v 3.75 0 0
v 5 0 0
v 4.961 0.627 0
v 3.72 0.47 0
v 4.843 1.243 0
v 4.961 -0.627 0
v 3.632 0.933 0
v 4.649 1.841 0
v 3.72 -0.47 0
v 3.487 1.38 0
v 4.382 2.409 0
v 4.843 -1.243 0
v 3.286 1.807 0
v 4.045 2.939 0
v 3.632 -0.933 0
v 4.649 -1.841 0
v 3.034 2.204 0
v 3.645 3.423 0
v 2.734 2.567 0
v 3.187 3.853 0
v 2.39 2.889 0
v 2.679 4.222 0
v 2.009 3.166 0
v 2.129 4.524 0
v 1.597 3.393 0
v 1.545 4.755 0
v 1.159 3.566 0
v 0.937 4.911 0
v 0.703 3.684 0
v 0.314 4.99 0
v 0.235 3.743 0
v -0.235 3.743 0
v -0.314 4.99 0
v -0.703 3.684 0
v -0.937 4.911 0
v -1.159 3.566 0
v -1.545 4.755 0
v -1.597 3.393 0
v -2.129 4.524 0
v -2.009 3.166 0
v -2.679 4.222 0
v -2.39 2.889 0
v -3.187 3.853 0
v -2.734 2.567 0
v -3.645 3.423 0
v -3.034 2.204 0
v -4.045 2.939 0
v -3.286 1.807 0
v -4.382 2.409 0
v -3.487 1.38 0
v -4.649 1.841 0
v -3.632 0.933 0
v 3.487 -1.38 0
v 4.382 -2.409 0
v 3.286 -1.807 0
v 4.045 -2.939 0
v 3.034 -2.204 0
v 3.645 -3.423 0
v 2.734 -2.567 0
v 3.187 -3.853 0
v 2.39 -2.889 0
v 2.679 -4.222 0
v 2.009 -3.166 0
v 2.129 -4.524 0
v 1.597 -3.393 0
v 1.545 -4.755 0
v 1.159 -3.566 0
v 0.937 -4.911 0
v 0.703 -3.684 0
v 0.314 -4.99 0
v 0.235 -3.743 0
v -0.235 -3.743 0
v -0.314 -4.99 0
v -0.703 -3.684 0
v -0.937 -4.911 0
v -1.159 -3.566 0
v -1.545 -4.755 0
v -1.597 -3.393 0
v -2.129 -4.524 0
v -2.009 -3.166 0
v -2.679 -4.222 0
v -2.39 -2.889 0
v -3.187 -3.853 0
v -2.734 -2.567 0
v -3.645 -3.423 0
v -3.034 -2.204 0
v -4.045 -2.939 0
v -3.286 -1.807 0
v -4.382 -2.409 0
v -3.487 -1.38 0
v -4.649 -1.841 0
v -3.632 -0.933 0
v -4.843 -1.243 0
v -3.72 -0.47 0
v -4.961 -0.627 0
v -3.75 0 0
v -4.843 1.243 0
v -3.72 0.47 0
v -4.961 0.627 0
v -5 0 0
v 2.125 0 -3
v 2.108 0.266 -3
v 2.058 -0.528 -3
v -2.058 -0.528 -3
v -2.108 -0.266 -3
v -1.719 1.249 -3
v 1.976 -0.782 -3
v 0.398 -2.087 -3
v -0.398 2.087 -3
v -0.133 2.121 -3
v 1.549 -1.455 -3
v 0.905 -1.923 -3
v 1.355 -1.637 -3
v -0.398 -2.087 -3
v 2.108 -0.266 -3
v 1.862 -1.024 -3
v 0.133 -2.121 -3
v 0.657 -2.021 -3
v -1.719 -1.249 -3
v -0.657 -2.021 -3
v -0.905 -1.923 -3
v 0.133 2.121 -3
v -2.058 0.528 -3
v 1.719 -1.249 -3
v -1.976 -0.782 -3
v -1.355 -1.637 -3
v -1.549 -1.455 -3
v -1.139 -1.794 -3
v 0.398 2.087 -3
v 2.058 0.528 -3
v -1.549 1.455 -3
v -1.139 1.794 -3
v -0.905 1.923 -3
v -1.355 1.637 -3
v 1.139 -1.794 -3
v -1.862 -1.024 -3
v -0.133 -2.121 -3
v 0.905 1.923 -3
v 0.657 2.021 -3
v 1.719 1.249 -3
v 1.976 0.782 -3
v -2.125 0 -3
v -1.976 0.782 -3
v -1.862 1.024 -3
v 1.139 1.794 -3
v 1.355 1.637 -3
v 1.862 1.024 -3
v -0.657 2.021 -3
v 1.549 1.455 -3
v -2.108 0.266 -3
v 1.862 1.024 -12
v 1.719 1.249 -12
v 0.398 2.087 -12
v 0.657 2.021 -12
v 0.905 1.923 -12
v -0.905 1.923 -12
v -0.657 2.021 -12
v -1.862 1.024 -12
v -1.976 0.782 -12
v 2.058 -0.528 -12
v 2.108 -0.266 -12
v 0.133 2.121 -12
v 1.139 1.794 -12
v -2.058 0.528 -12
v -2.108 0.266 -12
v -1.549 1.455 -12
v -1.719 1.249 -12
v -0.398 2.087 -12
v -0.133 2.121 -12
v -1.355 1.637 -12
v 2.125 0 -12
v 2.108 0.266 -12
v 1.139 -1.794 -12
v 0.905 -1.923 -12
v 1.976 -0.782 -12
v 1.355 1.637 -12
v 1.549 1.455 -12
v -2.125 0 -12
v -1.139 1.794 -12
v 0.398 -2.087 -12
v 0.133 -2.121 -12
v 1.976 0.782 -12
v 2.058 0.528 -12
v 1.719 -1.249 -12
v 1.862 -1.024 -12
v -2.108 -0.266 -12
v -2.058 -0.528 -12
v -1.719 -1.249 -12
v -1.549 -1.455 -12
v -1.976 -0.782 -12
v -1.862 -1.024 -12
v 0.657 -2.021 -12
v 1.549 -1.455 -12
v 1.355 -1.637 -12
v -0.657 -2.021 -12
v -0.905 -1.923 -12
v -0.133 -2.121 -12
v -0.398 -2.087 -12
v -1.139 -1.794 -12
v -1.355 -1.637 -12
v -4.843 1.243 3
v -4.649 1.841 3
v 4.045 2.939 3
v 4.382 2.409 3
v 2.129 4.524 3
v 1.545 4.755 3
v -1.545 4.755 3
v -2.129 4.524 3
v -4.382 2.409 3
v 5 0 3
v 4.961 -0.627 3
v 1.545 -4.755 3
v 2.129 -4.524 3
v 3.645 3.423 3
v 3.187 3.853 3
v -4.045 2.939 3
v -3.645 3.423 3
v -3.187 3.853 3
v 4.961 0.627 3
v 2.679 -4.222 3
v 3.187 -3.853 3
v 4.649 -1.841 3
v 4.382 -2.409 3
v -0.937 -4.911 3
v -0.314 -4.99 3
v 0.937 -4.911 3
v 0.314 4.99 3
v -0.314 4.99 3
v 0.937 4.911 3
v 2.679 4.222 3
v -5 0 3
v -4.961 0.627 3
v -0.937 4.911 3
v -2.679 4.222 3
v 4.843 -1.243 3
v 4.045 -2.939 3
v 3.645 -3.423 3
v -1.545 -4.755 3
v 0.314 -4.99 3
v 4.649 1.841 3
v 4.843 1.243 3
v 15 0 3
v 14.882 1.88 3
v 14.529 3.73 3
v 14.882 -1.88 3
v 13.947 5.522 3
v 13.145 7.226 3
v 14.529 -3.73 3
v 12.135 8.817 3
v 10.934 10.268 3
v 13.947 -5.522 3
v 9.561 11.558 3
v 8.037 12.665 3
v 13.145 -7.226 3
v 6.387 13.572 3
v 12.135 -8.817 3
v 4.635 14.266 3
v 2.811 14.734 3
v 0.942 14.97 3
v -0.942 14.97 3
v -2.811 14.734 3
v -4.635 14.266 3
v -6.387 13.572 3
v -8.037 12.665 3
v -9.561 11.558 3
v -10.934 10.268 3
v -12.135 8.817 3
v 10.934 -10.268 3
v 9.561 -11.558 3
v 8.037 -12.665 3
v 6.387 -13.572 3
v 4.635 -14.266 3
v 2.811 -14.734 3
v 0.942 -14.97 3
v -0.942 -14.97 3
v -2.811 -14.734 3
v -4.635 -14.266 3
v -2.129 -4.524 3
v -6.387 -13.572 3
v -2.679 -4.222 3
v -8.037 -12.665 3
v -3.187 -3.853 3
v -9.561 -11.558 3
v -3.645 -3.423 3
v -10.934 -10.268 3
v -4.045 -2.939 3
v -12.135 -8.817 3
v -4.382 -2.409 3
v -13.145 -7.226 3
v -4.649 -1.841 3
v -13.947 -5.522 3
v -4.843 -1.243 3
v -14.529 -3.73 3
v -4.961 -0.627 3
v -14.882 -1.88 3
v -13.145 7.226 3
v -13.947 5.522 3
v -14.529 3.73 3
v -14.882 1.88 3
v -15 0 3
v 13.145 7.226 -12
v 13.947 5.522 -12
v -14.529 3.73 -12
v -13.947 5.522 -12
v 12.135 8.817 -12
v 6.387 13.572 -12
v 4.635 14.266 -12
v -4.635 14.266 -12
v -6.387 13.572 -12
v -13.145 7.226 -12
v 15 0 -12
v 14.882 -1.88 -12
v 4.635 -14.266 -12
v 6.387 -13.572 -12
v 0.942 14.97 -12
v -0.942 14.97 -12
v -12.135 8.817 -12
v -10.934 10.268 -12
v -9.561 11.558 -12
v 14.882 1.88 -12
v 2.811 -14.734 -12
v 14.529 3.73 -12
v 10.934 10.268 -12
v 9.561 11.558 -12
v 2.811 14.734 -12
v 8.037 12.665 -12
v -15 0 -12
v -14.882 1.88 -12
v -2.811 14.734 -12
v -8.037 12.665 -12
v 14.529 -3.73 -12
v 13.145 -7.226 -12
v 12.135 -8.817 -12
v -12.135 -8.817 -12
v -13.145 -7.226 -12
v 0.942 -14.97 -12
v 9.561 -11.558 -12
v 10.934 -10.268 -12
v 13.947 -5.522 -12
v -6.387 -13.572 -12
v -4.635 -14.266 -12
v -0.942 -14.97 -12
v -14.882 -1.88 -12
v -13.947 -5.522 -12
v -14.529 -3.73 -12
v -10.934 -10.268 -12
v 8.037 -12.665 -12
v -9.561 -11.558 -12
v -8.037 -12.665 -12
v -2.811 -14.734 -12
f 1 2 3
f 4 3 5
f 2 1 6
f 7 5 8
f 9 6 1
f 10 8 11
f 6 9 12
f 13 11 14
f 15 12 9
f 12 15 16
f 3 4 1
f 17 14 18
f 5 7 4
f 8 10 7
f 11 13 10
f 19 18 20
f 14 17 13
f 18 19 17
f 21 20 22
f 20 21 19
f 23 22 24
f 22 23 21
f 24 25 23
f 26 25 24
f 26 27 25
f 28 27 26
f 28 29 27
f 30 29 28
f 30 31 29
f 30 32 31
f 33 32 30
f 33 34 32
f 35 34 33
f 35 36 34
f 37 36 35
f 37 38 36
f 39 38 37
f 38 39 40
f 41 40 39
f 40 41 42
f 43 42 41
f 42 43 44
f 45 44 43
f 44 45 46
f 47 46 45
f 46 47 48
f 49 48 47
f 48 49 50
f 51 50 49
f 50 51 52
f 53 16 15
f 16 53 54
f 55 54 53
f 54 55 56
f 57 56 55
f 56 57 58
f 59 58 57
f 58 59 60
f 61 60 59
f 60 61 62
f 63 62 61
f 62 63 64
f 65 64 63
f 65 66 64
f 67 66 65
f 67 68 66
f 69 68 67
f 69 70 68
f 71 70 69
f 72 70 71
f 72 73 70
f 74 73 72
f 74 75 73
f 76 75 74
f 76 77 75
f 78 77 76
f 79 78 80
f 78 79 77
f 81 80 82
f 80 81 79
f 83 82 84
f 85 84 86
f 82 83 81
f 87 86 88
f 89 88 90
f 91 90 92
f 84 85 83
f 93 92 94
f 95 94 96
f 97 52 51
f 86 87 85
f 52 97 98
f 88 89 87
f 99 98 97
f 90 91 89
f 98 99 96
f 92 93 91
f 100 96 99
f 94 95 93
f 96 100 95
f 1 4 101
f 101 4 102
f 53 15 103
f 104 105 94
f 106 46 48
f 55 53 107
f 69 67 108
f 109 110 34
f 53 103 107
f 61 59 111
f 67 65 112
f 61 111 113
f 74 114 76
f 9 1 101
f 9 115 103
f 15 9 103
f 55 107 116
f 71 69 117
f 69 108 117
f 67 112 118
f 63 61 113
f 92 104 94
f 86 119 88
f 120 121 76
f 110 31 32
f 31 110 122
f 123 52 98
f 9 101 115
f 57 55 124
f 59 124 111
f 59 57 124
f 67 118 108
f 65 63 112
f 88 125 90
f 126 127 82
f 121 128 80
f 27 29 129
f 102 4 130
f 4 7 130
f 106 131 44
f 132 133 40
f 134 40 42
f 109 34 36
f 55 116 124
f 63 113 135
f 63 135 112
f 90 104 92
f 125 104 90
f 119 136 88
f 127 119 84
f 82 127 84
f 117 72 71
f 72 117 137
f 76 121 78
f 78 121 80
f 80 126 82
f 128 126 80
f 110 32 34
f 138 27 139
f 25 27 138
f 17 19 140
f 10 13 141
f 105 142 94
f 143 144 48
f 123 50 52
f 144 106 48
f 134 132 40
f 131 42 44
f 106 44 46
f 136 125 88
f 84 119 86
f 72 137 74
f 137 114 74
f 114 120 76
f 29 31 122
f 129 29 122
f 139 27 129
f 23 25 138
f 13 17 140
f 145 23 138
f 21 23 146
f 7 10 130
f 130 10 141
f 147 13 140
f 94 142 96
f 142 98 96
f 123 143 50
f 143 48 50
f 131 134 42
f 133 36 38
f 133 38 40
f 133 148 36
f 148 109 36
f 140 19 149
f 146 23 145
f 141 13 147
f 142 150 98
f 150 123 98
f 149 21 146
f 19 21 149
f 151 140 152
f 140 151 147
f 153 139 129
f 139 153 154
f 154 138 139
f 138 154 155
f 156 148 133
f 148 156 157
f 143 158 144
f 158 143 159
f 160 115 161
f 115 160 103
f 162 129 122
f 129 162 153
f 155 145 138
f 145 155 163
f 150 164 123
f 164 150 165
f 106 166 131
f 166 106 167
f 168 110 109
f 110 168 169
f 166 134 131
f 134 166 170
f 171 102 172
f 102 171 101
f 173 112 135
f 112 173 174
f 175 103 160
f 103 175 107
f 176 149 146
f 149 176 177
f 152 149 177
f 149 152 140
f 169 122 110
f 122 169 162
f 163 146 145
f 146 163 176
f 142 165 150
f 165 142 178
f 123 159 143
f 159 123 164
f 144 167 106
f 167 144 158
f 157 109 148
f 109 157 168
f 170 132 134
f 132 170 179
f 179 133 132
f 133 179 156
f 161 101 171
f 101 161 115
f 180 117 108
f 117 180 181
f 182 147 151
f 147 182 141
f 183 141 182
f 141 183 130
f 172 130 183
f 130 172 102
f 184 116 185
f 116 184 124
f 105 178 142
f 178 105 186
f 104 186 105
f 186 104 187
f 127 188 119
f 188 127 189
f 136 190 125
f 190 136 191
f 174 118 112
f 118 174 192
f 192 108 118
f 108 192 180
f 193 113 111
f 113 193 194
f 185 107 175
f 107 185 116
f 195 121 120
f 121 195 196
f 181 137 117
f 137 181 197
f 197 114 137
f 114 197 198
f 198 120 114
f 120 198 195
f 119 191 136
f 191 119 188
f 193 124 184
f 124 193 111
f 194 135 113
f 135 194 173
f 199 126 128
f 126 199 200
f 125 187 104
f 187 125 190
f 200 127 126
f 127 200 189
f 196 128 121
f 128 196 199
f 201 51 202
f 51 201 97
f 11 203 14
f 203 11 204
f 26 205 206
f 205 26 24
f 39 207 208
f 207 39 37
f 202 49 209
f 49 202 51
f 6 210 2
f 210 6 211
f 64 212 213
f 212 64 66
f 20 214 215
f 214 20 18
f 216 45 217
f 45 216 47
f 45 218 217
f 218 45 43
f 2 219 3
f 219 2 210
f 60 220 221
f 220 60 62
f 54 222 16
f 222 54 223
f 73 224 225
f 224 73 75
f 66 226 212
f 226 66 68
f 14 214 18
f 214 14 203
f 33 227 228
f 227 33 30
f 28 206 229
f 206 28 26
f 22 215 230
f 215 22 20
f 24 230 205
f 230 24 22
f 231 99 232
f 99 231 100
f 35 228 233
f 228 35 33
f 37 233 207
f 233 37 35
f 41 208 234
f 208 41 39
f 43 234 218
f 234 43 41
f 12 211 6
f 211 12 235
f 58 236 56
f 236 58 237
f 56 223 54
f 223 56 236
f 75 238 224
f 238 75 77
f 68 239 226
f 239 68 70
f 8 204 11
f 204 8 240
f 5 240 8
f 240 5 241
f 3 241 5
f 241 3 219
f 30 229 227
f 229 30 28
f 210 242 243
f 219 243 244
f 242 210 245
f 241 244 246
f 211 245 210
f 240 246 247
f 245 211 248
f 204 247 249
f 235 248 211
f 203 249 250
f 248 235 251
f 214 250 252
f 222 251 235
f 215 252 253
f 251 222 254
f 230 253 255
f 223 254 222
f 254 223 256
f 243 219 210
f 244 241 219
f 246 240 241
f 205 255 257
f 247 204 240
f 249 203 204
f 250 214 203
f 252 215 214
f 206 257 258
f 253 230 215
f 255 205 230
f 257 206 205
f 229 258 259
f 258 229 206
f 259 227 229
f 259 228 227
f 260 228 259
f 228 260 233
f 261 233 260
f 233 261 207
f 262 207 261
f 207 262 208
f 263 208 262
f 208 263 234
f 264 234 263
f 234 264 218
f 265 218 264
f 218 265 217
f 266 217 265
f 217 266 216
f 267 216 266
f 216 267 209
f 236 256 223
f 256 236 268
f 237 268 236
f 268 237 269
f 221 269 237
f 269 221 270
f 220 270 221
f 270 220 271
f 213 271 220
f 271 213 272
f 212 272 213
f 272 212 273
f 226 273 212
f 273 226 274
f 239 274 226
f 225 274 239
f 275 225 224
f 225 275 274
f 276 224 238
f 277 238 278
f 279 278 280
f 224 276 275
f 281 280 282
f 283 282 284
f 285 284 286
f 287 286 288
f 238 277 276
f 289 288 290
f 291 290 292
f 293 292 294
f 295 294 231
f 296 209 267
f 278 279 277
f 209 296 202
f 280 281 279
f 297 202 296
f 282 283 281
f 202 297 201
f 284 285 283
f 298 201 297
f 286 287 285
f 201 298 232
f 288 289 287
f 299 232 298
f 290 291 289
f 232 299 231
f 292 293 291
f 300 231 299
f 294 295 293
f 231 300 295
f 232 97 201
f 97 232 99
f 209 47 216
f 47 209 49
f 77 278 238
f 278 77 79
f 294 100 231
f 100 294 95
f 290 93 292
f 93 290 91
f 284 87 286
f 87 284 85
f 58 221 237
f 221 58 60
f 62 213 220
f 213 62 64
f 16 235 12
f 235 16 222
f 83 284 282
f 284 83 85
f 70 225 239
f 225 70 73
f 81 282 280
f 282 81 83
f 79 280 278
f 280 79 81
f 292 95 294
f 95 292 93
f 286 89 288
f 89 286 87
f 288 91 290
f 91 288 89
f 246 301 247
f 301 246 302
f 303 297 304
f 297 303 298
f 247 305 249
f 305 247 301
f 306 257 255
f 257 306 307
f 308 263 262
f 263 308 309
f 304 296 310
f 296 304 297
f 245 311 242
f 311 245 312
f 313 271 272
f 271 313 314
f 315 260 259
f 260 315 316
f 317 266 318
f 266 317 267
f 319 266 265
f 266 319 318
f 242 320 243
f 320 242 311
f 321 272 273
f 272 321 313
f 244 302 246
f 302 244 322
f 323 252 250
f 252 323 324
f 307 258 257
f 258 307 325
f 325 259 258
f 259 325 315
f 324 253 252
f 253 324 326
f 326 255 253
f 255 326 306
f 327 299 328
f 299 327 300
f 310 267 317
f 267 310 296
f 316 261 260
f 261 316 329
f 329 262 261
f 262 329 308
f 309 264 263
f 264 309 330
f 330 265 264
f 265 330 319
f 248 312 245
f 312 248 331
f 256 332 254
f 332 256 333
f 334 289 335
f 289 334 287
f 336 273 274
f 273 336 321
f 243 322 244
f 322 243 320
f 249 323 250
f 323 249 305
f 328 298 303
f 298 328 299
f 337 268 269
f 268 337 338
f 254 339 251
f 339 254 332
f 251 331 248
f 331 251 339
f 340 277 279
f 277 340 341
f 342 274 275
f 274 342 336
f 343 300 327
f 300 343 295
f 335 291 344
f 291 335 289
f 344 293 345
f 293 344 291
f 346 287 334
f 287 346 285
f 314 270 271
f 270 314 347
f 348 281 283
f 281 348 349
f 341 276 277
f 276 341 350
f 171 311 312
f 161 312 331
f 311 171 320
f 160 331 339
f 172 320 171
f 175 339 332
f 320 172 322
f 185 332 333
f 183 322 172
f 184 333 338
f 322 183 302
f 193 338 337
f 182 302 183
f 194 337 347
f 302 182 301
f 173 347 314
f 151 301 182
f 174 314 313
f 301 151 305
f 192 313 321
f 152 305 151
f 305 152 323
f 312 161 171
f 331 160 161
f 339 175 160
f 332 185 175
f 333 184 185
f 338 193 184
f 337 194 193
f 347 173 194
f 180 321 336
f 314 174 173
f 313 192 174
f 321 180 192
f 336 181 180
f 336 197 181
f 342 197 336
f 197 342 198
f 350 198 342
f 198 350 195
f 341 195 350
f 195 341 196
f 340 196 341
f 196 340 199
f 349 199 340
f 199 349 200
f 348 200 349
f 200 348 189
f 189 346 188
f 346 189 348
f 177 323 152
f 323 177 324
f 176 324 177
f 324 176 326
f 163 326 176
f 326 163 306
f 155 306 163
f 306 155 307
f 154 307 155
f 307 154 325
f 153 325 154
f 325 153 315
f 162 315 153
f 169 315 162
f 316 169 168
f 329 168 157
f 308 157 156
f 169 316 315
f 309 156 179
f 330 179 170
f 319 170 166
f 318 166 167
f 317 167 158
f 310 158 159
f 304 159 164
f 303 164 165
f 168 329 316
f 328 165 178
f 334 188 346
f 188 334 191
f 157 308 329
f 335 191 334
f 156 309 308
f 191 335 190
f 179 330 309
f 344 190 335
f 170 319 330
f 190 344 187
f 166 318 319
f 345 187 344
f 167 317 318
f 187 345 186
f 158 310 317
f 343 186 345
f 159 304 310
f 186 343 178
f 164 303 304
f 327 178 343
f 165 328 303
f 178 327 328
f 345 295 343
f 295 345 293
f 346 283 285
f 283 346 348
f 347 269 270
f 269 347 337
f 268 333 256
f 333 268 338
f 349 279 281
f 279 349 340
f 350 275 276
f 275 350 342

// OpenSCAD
$fn = 50;

difference() {
	union() {
		translate(v = [0, 0, -12.0]) {
			cylinder(h = 15, r = 15.0);
		}
	}
	union() {
		translate(v = [0, 0, 0]) {
			rotate(a = [0, 0, 0]) {
				difference() {
					union() {
						translate(v = [0, 0, -15.0]) {
							cylinder(h = 15, r = 2.0);
						}
						translate(v = [0, 0, -3]) {
							cylinder(h = 3, r1 = 2.125, r2 = 3.75);
						}
						translate(v = [0, 0, -15.0]) {
							cylinder(h = 15, r = 2.125);
						}
						translate(v = [0, 0, -15.0]) {
							cylinder(h = 15, r = 2.0);
						}
					}
					union();
				}
			}
		}
		#cylinder(h = 3, r = 5.0);
	}
}
